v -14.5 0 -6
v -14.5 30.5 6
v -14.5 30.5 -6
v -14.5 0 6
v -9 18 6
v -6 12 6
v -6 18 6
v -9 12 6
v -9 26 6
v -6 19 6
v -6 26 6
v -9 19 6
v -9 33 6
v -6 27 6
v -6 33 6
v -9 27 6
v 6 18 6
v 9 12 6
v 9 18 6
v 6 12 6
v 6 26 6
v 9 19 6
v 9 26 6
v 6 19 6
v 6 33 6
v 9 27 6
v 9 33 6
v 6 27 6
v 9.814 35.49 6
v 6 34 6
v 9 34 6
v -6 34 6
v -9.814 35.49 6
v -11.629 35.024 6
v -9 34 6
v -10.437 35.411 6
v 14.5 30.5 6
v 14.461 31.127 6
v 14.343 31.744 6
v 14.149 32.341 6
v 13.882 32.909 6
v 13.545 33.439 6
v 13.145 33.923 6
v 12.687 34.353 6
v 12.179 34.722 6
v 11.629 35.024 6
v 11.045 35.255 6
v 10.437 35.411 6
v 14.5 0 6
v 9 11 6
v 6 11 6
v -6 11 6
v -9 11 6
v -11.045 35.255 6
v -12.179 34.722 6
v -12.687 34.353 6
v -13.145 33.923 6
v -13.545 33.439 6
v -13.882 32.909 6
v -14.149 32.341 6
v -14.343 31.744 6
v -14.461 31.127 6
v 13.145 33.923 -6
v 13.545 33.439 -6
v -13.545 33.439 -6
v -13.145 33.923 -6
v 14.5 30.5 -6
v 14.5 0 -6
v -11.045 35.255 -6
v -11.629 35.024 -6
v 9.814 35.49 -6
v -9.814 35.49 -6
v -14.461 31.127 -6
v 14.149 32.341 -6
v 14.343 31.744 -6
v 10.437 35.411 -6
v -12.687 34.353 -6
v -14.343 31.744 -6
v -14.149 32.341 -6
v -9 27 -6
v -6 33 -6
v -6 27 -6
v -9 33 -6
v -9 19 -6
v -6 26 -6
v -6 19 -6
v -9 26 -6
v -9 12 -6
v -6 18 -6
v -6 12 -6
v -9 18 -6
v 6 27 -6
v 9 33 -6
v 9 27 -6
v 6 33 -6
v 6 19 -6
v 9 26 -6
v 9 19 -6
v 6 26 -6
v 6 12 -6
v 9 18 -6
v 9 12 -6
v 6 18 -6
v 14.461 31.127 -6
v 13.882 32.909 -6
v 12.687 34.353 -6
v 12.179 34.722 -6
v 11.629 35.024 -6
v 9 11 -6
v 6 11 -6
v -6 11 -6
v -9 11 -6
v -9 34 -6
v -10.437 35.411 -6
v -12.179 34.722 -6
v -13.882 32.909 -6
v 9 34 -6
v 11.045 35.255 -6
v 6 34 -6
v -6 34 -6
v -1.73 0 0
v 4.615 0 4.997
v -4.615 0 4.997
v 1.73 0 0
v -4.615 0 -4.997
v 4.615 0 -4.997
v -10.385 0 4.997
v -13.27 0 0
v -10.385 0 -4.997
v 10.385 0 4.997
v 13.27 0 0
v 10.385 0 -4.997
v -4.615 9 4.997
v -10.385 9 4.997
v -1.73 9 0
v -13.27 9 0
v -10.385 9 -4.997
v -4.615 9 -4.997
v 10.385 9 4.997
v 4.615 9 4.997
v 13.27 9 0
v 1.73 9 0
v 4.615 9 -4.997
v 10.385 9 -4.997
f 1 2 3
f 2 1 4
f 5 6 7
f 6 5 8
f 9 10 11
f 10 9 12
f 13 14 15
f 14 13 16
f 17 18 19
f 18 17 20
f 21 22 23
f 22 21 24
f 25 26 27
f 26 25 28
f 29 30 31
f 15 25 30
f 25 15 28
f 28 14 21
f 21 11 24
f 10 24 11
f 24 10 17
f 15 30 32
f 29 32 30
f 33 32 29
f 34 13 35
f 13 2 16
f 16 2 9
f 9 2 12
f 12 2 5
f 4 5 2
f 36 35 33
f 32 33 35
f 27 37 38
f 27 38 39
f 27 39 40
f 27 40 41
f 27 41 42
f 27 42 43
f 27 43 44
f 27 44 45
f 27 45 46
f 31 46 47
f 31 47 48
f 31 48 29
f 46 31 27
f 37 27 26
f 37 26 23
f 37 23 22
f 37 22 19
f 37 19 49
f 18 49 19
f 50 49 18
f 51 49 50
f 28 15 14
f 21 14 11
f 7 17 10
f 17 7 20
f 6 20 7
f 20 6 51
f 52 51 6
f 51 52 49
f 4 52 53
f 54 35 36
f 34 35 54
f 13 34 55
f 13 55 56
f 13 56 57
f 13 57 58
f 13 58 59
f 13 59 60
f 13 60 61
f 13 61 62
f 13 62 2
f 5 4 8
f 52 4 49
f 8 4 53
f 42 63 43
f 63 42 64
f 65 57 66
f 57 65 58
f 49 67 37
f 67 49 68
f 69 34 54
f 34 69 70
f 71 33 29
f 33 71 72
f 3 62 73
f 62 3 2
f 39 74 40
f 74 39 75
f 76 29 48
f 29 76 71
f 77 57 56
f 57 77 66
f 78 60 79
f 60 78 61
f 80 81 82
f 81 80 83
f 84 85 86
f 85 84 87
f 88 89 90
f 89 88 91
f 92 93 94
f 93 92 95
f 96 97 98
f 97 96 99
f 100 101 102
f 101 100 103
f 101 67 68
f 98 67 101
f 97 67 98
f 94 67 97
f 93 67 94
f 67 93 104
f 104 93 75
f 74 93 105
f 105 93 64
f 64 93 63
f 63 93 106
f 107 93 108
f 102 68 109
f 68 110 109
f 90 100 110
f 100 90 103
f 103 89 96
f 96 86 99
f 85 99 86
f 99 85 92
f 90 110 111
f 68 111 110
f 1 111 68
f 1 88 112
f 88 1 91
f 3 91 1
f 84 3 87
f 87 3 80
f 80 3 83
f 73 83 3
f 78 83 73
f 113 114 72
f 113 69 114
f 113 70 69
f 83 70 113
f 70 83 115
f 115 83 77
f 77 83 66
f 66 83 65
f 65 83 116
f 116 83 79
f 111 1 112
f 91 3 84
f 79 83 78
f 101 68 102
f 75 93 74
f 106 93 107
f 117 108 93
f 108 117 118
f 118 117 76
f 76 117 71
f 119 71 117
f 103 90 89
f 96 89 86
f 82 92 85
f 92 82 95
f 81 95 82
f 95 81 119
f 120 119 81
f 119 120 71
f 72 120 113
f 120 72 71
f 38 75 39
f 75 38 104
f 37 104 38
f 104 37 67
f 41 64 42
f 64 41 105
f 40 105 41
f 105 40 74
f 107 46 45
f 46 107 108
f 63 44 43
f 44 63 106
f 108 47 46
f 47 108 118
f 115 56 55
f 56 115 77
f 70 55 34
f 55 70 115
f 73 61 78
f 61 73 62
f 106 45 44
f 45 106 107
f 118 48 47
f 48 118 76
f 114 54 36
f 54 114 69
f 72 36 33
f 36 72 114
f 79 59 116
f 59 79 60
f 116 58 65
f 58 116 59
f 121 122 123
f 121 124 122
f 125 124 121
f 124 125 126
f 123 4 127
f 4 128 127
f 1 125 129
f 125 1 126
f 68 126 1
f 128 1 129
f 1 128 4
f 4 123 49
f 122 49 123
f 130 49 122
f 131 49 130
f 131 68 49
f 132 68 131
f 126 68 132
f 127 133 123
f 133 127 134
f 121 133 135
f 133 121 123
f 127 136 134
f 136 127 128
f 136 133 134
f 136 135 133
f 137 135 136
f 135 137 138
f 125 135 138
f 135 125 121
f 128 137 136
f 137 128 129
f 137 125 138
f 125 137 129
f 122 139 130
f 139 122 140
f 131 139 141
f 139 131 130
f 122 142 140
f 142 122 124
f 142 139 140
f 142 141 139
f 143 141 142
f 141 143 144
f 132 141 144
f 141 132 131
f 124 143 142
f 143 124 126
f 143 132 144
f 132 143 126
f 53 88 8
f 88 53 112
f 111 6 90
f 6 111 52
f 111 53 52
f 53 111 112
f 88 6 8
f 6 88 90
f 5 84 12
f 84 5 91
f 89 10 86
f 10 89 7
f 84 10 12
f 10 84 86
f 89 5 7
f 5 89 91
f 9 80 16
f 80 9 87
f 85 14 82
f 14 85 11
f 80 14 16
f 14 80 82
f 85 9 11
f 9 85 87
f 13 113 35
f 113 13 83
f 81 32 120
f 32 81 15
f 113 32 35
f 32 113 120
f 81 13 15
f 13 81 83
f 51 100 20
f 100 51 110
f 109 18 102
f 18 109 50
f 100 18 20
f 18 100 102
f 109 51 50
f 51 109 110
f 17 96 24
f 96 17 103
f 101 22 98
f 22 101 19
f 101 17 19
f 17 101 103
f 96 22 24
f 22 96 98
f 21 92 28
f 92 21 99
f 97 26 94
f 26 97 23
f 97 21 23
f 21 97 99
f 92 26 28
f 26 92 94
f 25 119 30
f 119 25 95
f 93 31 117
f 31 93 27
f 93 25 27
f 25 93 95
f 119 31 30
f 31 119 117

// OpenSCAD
$fn = 50;


difference() {
	union() {
		translate(v = [0, 21.0000000000, -6.0000000000]) {
			hull() {
				translate(v = [-9.5000000000, 9.5000000000, 0]) {
					cylinder(h = 12, r = 5);
				}
				translate(v = [9.5000000000, 9.5000000000, 0]) {
					cylinder(h = 12, r = 5);
				}
				translate(v = [-9.5000000000, -9.5000000000, 0]) {
					cylinder(h = 12, r = 5);
				}
				translate(v = [9.5000000000, -9.5000000000, 0]) {
					cylinder(h = 12, r = 5);
				}
			}
		}
		translate(v = [0, 21.0000000000, -6.0000000000]) {
			hull() {
				translate(v = [-9.5000000000, 9.5000000000, 0]) {
					cylinder(h = 12, r = 5);
				}
				translate(v = [9.5000000000, 9.5000000000, 0]) {
					cylinder(h = 12, r = 5);
				}
				translate(v = [-9.5000000000, -9.5000000000, 0]) {
					cylinder(h = 12, r = 5);
				}
				translate(v = [9.5000000000, -9.5000000000, 0]) {
					cylinder(h = 12, r = 5);
				}
			}
		}
		translate(v = [-14.5000000000, 0, -6.0000000000]) {
			cube(size = [29, 13.5000000000, 12]);
		}
	}
	union() {
		translate(v = [-7.5000000000, 9, 0]) {
			rotate(a = [0, 0, 0]) {
				difference() {
					union() {
						rotate(a = [90, 0, 0]) {
							linear_extrude(height = 13.5000000000) {
								polygon(points = [[5.7700000000, 0.0000000000], [2.8850000000, 4.9969665798], [-2.8850000000, 4.9969665798], [-5.7700000000, 0.0000000000], [-2.8850000000, -4.9969665798], [2.8850000000, -4.9969665798]]);
							}
						}
					}
					union();
				}
			}
		}
		translate(v = [7.5000000000, 9, 0]) {
			rotate(a = [0, 0, 0]) {
				difference() {
					union() {
						rotate(a = [90, 0, 0]) {
							linear_extrude(height = 13.5000000000) {
								polygon(points = [[5.7700000000, 0.0000000000], [2.8850000000, 4.9969665798], [-2.8850000000, 4.9969665798], [-5.7700000000, 0.0000000000], [-2.8850000000, -4.9969665798], [2.8850000000, -4.9969665798]]);
							}
						}
					}
					union();
				}
			}
		}
		translate(v = [-9.0000000000, 11.0000000000, -50]) {
			cube(size = [3, 1, 100]);
		}
		translate(v = [-9.0000000000, 18.0000000000, -50]) {
			cube(size = [3, 1, 100]);
		}
		translate(v = [-9.0000000000, 26.0000000000, -50]) {
			cube(size = [3, 1, 100]);
		}
		translate(v = [-9.0000000000, 33.0000000000, -50]) {
			cube(size = [3, 1, 100]);
		}
		translate(v = [-7.5000000000, 8, 0]) {
			rotate(a = [90, 0, 0]) {
				cylinder(h = 8, r = 3.0000000000);
			}
		}
		translate(v = [6.0000000000, 11.0000000000, -50]) {
			cube(size = [3, 1, 100]);
		}
		translate(v = [6.0000000000, 18.0000000000, -50]) {
			cube(size = [3, 1, 100]);
		}
		translate(v = [6.0000000000, 26.0000000000, -50]) {
			cube(size = [3, 1, 100]);
		}
		translate(v = [6.0000000000, 33.0000000000, -50]) {
			cube(size = [3, 1, 100]);
		}
		translate(v = [7.5000000000, 8, 0]) {
			rotate(a = [90, 0, 0]) {
				cylinder(h = 8, r = 3.0000000000);
			}
		}
	}
}
